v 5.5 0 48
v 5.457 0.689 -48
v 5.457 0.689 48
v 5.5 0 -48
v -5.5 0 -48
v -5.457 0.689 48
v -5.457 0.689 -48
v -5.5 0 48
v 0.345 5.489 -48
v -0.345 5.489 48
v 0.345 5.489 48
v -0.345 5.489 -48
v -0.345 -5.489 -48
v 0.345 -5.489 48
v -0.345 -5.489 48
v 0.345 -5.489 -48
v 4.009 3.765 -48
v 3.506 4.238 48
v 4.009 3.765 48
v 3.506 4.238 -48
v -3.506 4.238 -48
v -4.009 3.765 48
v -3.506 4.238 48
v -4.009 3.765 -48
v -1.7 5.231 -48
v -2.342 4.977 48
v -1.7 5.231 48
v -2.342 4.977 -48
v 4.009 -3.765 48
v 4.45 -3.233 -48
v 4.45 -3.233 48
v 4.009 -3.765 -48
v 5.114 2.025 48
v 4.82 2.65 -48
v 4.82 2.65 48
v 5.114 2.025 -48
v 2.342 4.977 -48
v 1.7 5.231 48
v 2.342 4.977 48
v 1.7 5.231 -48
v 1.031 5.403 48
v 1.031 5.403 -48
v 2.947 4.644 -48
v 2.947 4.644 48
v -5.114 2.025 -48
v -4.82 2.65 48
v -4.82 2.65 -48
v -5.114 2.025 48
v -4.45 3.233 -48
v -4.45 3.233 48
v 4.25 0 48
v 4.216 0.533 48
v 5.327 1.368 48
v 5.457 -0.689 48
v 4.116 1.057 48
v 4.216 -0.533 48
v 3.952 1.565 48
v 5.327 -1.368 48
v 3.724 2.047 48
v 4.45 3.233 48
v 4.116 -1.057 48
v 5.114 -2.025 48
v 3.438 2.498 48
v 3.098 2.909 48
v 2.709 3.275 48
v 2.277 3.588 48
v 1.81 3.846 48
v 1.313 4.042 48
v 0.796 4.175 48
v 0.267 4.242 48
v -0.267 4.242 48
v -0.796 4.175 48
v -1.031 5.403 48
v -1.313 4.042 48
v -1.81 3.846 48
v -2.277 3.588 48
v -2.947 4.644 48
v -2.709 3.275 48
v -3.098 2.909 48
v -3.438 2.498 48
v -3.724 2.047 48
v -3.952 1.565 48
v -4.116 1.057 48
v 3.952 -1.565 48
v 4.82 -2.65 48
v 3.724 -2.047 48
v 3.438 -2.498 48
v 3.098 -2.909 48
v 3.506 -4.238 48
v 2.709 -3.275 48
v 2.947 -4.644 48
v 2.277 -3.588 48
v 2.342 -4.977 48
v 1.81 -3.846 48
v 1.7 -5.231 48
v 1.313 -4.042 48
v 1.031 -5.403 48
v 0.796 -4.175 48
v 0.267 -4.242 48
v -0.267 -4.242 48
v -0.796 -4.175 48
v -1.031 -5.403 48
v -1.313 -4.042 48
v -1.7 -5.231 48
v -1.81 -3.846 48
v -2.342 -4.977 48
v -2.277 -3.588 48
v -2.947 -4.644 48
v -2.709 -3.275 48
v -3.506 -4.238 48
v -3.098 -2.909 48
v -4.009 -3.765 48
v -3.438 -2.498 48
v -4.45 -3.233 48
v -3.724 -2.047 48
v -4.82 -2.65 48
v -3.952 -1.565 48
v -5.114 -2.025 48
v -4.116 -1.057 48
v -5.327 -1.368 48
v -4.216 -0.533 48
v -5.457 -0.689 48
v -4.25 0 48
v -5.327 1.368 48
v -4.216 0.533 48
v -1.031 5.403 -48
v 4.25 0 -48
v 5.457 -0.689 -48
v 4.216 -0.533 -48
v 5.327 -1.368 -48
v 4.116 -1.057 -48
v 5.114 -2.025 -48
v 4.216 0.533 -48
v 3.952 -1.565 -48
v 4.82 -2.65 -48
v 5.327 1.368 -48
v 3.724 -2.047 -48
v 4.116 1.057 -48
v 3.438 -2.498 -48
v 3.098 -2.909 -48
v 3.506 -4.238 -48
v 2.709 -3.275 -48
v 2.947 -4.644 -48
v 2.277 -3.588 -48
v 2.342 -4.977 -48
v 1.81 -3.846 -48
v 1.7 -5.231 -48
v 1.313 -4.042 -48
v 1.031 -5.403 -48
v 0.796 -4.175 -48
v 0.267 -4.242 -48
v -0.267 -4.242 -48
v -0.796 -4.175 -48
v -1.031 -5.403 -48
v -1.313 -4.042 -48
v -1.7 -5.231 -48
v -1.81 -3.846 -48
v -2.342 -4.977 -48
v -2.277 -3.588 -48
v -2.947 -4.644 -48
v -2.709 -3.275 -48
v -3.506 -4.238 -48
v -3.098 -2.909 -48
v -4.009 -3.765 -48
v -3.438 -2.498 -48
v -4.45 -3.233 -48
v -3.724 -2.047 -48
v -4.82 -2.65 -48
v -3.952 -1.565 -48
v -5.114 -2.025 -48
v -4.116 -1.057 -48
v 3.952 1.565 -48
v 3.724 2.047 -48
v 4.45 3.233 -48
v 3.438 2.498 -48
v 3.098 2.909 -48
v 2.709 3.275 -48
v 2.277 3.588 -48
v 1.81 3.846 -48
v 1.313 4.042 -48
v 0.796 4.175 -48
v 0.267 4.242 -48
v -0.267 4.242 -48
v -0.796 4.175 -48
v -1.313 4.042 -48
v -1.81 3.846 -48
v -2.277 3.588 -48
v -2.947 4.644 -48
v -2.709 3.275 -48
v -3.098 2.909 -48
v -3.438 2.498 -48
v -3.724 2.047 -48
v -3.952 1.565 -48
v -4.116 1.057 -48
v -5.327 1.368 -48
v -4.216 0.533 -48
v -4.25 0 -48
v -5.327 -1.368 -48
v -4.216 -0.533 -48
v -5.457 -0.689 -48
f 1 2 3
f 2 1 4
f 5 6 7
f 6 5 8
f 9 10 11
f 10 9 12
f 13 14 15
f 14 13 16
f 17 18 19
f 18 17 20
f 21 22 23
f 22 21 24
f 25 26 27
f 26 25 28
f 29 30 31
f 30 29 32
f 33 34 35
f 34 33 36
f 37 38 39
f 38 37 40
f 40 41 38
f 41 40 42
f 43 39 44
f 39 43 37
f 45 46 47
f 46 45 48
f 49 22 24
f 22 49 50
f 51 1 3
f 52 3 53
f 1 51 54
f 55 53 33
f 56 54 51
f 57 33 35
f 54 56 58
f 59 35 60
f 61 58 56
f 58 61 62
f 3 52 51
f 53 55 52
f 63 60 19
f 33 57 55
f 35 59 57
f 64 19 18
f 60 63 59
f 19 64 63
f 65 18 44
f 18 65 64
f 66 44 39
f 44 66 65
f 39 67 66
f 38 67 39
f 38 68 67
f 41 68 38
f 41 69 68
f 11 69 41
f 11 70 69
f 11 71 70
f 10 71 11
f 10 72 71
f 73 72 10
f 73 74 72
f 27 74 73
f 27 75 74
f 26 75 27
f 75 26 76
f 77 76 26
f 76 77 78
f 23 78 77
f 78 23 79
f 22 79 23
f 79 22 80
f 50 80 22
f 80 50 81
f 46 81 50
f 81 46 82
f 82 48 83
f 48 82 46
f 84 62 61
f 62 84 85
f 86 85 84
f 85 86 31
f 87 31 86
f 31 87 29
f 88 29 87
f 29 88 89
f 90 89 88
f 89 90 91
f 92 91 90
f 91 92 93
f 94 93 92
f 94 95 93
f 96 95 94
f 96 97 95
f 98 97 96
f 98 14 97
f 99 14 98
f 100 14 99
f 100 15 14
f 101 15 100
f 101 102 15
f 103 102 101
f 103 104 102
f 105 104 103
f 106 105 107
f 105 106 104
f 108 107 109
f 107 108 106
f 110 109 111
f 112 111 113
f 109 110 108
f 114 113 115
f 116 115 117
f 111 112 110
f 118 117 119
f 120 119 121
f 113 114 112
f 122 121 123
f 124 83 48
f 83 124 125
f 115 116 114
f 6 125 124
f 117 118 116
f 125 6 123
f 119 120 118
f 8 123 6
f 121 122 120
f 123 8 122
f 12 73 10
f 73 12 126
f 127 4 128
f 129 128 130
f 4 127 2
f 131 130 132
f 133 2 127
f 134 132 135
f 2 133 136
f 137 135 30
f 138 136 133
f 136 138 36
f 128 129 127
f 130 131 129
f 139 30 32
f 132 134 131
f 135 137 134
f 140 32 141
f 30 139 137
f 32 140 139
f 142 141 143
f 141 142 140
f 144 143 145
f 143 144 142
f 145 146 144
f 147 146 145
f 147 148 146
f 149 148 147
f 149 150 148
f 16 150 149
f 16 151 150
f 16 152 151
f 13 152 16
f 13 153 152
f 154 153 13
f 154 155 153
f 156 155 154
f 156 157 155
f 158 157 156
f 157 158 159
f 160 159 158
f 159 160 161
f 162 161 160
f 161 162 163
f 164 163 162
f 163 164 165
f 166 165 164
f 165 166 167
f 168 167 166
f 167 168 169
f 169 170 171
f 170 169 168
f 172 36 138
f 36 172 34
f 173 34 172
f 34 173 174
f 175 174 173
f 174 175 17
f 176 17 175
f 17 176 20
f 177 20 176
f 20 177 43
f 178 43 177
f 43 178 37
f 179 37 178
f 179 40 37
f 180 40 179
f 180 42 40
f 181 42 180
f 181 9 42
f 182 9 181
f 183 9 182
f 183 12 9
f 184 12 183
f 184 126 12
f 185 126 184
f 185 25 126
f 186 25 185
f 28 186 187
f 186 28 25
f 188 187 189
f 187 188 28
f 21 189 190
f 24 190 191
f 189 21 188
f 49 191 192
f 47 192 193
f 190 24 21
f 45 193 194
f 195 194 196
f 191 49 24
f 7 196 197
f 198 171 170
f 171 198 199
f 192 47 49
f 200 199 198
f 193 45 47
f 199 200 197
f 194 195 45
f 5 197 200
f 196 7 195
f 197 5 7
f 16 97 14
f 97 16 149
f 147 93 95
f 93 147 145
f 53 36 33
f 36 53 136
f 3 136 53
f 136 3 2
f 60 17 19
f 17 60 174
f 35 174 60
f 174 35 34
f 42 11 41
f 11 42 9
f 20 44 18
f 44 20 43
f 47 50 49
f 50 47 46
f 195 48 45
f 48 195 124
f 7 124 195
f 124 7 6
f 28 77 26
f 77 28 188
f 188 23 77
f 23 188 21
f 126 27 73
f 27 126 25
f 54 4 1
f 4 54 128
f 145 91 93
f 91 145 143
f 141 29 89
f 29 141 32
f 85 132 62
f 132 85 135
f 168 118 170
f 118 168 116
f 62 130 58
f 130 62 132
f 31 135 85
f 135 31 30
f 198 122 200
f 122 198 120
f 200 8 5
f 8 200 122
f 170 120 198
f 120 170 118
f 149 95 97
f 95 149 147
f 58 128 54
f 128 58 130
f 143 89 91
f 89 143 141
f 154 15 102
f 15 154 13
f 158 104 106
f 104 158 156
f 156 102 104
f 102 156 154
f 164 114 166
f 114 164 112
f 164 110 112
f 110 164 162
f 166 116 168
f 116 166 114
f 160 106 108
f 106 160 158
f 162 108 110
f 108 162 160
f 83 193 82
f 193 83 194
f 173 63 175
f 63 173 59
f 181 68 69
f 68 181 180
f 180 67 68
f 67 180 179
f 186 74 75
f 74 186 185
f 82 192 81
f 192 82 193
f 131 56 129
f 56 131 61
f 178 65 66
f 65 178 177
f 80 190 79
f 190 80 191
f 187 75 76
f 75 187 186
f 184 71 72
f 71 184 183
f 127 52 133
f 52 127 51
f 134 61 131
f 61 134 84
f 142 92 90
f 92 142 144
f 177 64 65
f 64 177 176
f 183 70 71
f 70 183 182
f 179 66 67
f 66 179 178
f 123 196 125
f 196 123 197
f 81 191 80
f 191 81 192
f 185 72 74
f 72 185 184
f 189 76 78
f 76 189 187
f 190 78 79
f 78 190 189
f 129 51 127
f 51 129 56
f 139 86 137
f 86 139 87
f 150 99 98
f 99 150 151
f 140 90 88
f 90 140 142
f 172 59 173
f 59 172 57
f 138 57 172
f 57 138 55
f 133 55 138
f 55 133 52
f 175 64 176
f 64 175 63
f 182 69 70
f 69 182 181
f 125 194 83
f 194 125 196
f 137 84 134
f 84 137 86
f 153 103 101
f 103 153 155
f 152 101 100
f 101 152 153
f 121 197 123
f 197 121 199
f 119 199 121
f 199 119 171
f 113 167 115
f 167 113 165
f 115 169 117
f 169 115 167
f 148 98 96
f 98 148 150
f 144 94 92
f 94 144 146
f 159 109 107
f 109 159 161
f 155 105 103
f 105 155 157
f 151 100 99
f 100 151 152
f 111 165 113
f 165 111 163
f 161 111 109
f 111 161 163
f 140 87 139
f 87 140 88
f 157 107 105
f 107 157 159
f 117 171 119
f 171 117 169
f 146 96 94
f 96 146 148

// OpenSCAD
$fn = 50;


difference() {
	union() {
		translate(v = [0, 0, -48.0000000000]) {
			cylinder(h = 96, r = 5.5000000000);
		}
	}
	union() {
		translate(v = [0, 0, -100.0000000000]) {
			cylinder(h = 200, r = 4.2500000000);
		}
	}
}
